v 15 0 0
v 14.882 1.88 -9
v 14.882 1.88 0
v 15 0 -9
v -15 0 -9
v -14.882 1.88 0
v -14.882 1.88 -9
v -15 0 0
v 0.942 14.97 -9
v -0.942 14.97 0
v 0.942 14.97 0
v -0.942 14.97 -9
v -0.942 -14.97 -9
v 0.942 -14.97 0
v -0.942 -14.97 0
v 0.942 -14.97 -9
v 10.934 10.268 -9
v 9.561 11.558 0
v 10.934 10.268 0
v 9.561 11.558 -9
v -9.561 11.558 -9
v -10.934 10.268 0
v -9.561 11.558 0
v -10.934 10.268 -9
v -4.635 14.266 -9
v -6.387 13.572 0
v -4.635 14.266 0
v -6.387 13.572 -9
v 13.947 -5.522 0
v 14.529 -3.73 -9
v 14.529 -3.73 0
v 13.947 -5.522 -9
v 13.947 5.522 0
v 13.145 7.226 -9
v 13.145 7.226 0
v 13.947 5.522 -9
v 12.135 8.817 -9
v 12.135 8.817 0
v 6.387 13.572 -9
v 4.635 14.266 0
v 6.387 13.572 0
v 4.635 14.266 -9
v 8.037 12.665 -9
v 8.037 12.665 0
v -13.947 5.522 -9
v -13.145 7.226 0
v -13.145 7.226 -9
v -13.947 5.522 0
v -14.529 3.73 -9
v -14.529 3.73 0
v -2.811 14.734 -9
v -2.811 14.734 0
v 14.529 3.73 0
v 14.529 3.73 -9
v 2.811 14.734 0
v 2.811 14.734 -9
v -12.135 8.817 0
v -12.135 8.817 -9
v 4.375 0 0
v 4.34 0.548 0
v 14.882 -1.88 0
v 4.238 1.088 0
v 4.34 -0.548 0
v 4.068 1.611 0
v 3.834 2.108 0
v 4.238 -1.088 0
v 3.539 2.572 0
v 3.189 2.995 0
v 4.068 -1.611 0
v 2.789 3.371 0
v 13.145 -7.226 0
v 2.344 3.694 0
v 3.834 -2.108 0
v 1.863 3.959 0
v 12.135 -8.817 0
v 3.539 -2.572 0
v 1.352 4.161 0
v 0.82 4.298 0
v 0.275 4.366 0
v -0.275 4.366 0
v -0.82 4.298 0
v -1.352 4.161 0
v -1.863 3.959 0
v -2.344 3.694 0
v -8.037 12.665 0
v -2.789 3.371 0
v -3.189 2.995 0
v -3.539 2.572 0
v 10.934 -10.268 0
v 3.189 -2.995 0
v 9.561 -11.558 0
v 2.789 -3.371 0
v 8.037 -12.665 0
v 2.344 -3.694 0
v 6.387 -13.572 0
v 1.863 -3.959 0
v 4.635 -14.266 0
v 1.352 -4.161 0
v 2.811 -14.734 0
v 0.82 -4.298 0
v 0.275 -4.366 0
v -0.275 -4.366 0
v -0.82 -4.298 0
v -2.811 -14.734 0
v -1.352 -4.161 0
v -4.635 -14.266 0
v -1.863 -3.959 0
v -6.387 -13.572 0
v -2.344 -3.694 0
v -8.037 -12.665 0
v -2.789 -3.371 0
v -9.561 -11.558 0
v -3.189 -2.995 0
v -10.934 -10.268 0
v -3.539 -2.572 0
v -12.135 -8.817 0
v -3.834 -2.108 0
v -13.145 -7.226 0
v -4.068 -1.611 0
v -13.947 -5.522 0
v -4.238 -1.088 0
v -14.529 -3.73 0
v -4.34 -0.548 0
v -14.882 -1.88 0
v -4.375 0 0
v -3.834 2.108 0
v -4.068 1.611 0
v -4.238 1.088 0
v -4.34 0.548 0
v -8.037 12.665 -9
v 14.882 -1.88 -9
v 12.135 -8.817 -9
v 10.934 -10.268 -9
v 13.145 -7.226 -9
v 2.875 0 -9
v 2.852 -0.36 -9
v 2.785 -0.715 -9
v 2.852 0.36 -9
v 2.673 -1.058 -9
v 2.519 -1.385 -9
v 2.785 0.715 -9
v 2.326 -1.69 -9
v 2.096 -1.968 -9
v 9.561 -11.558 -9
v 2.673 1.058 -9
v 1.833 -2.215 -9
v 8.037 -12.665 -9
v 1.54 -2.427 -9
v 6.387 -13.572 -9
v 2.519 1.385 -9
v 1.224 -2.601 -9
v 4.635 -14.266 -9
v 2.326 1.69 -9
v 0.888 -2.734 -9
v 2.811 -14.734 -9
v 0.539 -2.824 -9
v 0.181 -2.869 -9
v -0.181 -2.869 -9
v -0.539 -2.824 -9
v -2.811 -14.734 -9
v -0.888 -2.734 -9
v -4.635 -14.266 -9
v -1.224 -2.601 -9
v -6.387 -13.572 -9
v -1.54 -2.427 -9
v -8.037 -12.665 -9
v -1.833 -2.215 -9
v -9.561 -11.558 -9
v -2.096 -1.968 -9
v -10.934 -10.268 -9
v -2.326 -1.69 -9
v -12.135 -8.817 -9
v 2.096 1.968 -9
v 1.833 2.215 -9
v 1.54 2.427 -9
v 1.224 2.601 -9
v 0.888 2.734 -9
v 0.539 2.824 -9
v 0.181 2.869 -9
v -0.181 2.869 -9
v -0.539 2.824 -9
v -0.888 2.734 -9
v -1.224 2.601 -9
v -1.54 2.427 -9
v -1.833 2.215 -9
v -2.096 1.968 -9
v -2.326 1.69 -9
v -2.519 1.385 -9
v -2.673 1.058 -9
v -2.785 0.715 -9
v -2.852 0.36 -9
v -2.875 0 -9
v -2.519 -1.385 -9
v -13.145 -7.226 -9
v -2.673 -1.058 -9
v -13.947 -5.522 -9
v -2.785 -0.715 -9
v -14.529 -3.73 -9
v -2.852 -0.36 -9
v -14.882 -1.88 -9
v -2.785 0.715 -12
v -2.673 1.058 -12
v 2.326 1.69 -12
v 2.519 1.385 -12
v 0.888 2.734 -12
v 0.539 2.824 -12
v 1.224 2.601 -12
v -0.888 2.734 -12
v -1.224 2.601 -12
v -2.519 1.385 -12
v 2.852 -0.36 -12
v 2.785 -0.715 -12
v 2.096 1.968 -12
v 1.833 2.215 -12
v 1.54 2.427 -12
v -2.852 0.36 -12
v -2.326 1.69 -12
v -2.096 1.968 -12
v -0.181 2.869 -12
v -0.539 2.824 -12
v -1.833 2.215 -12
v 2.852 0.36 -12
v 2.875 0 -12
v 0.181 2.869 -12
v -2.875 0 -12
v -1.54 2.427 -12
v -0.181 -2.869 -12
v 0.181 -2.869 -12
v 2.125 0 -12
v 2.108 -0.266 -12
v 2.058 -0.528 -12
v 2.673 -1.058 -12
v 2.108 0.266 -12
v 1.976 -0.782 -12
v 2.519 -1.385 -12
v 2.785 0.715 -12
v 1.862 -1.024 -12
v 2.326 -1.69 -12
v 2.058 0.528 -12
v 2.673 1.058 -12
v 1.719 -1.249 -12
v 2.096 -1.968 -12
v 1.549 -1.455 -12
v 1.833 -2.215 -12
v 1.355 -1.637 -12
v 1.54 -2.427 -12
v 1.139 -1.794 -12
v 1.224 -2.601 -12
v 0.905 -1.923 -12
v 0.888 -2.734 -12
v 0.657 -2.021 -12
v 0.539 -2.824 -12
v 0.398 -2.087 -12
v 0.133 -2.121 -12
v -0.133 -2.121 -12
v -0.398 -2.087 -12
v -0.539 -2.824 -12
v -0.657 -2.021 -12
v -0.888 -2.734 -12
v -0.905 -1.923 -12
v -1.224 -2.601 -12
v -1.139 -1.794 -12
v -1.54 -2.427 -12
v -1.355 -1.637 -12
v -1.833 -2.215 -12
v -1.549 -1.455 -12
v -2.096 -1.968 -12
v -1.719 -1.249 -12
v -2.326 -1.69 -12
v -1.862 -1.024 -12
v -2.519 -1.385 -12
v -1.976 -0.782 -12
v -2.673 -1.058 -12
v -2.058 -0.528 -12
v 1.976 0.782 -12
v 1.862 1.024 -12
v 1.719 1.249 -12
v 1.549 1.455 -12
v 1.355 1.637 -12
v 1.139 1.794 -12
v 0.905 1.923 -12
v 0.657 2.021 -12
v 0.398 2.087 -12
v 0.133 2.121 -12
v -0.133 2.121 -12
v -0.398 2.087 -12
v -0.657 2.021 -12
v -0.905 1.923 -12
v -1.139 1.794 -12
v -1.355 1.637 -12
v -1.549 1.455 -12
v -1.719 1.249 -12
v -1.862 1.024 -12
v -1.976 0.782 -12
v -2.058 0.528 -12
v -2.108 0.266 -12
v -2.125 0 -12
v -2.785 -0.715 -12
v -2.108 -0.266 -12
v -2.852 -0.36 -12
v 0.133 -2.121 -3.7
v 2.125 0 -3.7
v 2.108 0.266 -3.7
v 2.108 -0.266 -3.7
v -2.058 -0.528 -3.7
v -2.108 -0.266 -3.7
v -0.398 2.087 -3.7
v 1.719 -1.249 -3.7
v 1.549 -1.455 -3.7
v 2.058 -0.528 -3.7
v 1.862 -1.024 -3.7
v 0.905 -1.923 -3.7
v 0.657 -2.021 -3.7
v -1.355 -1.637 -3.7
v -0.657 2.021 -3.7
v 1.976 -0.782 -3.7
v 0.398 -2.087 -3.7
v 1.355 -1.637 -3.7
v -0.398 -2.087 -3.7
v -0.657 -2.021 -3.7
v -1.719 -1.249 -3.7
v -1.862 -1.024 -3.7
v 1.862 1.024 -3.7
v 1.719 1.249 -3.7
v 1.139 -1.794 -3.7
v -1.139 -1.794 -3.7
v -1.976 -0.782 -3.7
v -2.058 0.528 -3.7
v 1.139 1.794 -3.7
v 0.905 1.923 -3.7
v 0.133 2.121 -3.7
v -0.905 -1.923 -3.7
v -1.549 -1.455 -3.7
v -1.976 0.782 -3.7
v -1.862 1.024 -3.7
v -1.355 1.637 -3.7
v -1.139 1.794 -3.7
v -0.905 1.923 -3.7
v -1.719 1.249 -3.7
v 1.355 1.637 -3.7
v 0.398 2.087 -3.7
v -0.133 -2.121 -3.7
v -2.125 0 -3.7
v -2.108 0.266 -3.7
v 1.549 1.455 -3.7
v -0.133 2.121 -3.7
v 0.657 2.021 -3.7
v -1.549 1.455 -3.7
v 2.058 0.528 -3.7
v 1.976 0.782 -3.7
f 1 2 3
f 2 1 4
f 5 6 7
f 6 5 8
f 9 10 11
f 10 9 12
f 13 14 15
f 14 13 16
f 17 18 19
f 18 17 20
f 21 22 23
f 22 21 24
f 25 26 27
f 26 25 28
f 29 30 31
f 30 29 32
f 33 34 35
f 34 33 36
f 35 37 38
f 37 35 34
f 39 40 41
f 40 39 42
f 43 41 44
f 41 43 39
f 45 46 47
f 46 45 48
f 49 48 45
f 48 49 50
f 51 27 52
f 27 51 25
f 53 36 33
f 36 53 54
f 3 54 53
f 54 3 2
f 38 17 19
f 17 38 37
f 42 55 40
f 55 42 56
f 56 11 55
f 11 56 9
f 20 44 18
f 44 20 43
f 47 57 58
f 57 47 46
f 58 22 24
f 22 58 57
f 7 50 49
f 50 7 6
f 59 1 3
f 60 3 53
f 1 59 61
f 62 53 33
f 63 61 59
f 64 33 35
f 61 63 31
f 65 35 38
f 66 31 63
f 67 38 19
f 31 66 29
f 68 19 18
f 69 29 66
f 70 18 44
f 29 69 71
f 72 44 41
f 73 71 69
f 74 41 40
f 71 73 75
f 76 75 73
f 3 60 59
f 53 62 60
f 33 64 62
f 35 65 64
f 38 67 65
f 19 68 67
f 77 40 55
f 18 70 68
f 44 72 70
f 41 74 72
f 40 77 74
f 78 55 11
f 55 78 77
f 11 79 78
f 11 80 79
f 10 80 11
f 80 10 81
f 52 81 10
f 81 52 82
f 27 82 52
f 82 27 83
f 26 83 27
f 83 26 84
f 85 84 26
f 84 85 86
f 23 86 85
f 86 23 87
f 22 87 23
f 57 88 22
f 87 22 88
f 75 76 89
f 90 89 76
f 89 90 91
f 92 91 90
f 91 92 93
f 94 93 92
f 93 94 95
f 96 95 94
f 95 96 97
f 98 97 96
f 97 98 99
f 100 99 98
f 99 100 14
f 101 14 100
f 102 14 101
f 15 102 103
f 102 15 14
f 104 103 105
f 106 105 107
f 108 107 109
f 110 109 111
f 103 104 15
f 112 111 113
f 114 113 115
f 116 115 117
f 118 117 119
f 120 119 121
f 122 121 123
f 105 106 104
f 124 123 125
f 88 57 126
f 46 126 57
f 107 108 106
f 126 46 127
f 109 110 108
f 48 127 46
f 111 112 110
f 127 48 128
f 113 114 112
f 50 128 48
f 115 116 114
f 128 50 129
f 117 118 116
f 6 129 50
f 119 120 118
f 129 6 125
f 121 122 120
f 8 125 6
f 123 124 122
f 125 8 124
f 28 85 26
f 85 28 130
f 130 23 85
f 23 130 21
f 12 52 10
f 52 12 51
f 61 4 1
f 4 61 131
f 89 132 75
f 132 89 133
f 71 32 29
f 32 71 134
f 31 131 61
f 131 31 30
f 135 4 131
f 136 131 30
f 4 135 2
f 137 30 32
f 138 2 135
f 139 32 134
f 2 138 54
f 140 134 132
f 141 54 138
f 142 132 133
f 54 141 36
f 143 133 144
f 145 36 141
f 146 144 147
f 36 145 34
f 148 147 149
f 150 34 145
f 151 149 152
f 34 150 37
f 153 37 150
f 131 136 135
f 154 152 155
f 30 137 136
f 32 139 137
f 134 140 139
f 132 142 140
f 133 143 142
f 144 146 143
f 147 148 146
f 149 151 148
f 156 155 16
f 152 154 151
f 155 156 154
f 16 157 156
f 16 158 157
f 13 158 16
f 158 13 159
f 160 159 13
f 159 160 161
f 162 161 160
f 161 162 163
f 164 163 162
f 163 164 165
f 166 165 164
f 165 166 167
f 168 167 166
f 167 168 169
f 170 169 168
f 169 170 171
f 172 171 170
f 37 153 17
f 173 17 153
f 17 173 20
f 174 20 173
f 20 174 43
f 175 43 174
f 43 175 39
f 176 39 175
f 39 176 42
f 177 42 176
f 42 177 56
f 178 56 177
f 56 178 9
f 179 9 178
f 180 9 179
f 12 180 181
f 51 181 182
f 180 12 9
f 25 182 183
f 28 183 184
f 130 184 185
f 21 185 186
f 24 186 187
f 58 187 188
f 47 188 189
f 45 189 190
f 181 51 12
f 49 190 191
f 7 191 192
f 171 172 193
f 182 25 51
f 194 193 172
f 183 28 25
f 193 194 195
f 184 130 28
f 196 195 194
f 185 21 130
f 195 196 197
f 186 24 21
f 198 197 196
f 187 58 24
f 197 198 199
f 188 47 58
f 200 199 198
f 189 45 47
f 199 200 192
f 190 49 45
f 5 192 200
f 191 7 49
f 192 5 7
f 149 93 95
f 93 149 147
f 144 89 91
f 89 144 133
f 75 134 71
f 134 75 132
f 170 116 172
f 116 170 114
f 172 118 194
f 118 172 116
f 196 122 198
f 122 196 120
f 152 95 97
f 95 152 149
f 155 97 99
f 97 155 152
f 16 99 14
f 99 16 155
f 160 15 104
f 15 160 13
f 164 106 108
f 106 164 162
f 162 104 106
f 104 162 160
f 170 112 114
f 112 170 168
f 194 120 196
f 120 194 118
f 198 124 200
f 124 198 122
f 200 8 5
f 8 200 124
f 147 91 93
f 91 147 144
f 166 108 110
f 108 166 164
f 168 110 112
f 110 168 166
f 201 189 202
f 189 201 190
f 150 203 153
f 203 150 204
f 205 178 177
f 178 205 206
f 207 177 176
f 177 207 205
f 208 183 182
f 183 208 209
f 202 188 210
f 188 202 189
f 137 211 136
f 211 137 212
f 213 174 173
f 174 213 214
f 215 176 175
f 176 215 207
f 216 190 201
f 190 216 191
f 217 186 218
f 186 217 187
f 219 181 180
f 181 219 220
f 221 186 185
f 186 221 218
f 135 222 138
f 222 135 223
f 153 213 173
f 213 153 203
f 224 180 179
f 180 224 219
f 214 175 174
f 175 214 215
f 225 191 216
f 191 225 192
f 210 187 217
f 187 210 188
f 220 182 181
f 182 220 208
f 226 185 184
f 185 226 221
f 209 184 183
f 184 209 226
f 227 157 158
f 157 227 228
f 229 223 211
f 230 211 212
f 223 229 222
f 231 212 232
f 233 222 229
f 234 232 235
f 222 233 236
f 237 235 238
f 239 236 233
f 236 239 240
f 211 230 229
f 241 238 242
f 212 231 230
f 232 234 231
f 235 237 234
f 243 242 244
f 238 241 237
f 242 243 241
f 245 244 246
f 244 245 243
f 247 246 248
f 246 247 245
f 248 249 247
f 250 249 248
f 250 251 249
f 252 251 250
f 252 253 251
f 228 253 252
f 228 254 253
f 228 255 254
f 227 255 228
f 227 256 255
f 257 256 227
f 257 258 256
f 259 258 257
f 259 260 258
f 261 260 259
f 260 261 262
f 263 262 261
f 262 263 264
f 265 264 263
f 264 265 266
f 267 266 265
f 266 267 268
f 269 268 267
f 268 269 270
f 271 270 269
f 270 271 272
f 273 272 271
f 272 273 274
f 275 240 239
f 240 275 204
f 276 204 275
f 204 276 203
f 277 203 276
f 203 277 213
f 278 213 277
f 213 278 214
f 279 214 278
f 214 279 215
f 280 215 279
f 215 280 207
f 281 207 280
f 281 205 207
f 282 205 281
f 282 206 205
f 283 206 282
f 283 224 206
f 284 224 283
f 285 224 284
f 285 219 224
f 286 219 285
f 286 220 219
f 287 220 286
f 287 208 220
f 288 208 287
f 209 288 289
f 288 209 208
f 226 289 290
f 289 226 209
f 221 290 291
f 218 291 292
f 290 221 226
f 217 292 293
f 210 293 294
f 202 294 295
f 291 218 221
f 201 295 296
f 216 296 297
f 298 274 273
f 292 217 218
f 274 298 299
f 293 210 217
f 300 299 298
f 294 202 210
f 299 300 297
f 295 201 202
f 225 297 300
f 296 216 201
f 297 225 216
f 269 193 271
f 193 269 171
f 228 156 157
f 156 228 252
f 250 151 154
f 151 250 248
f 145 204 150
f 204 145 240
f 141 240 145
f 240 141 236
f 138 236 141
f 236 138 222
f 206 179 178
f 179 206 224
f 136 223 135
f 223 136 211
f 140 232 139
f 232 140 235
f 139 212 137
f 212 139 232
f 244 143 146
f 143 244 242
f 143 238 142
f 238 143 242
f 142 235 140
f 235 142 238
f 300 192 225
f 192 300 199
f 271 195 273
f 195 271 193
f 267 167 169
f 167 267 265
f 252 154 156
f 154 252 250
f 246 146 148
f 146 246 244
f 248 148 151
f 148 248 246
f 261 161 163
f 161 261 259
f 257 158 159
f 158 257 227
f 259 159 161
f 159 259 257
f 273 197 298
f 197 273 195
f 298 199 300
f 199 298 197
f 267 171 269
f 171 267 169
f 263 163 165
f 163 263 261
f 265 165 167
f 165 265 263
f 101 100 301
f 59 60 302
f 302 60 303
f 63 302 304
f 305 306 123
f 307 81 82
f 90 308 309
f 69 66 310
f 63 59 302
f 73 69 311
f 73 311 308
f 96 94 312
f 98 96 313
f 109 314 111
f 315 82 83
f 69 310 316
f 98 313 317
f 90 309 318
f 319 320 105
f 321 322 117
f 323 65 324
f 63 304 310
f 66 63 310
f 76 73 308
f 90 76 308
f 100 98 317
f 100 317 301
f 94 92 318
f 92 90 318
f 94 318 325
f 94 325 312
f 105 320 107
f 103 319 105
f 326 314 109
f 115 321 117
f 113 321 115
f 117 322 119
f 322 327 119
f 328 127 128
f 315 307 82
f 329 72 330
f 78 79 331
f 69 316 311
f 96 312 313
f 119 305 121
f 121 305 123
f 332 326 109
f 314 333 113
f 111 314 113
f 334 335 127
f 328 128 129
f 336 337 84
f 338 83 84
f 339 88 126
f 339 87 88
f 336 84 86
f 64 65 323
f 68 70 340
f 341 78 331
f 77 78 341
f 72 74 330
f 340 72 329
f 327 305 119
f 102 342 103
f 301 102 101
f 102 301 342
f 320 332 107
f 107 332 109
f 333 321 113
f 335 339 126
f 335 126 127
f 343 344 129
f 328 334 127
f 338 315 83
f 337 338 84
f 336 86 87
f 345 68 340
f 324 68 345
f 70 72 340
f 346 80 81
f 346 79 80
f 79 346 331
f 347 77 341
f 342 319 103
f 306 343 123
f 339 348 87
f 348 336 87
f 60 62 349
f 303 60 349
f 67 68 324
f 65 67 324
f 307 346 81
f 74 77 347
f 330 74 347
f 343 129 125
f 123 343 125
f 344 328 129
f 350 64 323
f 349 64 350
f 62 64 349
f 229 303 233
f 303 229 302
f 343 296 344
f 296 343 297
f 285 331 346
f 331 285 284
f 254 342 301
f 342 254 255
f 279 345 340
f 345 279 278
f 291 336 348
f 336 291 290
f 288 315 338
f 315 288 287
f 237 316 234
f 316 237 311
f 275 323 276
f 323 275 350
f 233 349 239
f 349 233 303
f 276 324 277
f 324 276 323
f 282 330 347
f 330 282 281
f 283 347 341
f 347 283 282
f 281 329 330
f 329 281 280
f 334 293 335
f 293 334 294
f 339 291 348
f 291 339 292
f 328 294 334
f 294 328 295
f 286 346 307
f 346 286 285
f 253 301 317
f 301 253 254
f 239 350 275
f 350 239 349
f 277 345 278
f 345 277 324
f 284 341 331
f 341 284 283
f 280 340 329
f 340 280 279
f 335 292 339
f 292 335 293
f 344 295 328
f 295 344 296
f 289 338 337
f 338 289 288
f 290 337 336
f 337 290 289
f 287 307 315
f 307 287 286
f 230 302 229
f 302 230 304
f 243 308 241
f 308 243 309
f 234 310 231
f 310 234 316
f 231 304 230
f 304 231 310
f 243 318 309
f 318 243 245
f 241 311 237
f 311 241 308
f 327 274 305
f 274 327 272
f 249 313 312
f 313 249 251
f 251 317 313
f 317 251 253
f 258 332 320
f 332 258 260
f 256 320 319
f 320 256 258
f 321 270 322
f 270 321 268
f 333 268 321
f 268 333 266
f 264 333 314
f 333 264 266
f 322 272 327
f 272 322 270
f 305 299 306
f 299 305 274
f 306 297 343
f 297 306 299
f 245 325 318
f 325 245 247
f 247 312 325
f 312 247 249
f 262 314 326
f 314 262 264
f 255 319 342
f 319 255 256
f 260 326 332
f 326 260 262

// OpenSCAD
$fn = 50;


difference() {
	union() {
		translate(v = [0, 0, -9.0000000000]) {
			cylinder(h = 9, r = 15.0000000000);
		}
		translate(v = [0, 0, -12.0000000000]) {
			cylinder(h = 12, r = 2.8750000000);
		}
	}
	union() {
		translate(v = [0, 0, 0]) {
			rotate(a = [0, 0, 0]) {
				difference() {
					union() {
						translate(v = [0, 0, -12.0000000000]) {
							cylinder(h = 12, r = 2.0000000000);
						}
						translate(v = [0, 0, -3.7000000000]) {
							cylinder(h = 3.7000000000, r1 = 2.1250000000, r2 = 4.3750000000);
						}
						translate(v = [0, 0, -12.0000000000]) {
							cylinder(h = 12, r = 2.1250000000);
						}
						translate(v = [0, 0, -12.0000000000]) {
							cylinder(h = 12, r = 2.0000000000);
						}
					}
					union();
				}
			}
		}
	}
}
